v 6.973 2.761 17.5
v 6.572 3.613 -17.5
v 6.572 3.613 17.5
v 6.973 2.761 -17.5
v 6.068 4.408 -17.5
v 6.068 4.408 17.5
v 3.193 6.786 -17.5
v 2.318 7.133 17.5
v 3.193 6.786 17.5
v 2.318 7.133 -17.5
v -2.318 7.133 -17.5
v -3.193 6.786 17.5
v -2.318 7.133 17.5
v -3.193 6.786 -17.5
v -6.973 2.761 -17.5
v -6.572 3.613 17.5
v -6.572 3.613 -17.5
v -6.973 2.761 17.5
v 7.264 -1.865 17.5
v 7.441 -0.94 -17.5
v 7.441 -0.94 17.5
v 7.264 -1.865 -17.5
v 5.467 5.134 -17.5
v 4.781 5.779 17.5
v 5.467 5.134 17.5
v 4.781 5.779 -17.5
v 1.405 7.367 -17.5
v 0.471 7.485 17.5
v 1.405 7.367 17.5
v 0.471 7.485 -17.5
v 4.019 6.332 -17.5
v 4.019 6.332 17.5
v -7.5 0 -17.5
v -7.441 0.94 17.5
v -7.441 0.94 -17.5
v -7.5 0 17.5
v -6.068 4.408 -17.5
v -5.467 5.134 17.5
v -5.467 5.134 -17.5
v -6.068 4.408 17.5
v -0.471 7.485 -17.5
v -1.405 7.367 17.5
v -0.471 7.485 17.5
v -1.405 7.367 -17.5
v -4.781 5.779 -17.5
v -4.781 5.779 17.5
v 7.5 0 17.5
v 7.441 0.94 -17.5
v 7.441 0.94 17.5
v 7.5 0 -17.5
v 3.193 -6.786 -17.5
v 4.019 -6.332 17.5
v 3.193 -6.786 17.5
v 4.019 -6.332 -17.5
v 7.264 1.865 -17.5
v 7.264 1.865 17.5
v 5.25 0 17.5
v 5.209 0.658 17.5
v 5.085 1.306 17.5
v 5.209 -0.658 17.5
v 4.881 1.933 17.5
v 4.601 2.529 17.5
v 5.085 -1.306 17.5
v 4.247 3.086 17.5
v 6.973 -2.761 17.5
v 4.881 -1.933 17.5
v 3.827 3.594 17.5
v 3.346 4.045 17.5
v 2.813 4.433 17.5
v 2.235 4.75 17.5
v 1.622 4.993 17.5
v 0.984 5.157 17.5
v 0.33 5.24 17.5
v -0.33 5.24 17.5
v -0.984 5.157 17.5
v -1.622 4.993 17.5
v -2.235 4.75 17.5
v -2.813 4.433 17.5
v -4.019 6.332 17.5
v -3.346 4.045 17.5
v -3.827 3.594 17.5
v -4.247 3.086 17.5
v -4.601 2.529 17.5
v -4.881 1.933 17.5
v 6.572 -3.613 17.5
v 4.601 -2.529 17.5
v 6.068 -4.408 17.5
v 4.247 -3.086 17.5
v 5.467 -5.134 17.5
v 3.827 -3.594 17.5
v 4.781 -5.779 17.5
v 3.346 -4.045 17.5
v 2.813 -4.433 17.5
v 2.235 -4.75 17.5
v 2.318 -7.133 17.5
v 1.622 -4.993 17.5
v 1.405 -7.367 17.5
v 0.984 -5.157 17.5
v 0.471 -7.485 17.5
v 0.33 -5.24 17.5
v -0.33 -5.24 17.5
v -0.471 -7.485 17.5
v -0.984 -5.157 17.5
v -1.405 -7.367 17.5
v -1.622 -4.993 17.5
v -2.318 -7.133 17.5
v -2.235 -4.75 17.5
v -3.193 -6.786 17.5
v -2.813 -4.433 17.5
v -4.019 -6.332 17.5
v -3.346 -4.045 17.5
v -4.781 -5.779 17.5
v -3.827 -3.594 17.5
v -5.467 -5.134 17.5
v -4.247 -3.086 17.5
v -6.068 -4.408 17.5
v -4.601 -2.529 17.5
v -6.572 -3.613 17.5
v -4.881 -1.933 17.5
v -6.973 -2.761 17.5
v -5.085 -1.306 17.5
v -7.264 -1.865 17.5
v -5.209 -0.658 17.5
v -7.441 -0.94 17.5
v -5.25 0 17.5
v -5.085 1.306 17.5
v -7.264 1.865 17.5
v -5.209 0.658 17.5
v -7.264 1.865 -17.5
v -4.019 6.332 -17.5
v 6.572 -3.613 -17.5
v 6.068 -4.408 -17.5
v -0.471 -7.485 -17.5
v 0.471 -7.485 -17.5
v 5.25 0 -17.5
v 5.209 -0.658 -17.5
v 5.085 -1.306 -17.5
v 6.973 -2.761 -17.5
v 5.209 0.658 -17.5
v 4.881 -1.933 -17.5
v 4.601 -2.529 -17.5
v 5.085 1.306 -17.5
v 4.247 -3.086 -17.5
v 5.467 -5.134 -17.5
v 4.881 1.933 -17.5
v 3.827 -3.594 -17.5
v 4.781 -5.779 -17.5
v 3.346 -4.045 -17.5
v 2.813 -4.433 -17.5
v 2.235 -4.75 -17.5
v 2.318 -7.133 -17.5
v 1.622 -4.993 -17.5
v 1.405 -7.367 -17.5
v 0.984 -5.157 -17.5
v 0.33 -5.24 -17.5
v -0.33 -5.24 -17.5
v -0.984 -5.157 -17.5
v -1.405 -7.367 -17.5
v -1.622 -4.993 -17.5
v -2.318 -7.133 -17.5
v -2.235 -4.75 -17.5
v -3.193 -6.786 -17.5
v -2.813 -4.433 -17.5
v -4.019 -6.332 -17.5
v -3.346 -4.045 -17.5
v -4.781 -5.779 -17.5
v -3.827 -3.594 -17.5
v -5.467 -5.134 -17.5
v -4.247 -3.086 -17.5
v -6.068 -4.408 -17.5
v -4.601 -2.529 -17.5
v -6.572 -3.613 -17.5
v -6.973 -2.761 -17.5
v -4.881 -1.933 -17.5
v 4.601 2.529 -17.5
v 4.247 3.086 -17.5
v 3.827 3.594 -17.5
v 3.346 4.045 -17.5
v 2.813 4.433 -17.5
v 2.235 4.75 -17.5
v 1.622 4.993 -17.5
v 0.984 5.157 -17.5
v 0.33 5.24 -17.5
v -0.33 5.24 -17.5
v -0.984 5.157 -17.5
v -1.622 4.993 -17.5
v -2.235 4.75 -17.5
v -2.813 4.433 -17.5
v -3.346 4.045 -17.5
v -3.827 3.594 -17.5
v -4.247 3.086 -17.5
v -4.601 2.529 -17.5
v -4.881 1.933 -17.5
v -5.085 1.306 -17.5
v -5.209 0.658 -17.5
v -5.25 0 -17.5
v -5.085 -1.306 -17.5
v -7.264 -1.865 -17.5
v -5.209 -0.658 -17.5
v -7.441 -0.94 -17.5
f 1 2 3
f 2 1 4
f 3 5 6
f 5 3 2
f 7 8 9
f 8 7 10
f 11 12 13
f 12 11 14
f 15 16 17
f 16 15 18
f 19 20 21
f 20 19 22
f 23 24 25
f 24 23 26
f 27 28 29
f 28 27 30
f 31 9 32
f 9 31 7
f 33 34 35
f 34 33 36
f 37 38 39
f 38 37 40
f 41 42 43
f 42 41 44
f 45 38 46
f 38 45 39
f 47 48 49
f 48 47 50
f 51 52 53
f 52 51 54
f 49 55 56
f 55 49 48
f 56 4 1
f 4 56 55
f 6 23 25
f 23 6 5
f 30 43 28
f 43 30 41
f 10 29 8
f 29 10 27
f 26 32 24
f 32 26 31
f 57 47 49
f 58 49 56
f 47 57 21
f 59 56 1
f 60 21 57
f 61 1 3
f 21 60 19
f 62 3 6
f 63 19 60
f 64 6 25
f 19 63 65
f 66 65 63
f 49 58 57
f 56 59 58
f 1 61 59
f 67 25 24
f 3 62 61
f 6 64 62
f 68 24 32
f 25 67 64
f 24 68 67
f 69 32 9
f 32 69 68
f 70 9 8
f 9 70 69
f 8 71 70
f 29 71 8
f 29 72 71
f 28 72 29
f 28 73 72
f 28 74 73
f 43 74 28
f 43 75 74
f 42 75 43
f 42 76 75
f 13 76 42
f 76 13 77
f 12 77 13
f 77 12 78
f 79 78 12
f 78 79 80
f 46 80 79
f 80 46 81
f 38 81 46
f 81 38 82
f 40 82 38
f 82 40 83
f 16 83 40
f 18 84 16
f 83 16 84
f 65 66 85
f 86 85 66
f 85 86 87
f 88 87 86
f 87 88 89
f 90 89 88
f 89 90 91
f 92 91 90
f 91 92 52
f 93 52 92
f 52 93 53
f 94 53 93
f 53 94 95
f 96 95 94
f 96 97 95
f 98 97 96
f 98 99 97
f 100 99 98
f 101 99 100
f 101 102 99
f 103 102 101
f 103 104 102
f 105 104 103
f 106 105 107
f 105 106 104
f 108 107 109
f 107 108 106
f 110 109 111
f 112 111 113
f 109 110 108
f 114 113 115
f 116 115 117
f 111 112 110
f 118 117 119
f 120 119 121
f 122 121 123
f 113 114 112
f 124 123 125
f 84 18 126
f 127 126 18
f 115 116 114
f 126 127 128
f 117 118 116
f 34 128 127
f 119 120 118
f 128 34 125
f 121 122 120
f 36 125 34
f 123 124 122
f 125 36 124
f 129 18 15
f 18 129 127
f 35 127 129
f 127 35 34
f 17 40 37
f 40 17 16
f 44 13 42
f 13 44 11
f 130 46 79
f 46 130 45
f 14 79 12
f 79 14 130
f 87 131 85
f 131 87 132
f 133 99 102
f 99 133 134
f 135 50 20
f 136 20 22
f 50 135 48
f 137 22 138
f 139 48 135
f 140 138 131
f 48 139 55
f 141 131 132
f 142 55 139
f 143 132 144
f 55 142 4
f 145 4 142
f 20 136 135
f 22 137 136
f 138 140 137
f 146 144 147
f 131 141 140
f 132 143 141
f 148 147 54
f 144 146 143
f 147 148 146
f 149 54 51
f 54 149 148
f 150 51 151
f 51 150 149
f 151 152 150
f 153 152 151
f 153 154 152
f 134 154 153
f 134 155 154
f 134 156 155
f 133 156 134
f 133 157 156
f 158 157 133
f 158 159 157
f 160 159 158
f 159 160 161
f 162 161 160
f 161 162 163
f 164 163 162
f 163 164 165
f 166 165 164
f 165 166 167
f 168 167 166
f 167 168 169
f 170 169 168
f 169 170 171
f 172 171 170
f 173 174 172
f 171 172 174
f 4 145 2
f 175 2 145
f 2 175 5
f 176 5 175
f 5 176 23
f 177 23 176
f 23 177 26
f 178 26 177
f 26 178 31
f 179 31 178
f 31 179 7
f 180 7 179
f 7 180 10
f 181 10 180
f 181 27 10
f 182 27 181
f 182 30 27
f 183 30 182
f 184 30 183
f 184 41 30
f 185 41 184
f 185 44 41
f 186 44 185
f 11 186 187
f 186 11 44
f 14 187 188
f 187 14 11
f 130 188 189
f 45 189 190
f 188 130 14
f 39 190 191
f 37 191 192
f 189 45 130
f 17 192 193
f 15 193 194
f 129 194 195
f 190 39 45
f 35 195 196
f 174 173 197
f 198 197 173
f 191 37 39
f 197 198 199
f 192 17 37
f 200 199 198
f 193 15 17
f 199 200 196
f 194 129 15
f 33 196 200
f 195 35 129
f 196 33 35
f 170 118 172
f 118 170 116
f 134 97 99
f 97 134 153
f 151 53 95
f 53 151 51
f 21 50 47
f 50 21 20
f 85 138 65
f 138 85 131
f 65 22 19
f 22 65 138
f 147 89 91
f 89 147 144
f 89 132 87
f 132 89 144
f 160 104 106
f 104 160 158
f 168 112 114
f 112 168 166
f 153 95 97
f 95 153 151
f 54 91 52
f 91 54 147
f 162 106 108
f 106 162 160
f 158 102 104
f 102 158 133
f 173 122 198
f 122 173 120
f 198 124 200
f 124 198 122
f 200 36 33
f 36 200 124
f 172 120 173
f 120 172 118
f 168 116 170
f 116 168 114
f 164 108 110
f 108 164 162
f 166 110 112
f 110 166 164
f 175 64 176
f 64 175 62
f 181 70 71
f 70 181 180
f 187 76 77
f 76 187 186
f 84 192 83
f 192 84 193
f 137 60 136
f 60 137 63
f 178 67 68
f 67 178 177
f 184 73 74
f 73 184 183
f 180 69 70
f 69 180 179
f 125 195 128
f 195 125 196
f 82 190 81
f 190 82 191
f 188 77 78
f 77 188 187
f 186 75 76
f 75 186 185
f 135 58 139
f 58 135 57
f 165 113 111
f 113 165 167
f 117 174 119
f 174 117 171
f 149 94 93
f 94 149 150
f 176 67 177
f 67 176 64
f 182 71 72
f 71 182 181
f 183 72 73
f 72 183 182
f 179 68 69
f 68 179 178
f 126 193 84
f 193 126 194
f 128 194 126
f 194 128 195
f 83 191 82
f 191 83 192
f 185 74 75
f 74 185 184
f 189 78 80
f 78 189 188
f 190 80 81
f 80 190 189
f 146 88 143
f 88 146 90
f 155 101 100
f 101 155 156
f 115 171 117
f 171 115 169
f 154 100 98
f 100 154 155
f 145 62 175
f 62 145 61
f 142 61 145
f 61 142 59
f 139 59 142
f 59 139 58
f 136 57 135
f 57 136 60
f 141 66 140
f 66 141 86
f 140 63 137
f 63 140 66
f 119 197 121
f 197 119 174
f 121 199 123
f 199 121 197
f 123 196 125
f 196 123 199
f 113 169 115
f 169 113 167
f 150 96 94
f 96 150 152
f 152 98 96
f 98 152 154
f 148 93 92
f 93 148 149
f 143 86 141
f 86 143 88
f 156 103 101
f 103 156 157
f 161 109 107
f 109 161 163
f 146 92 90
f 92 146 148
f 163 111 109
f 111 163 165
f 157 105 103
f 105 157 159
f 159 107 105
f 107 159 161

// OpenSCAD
$fn = 50;


difference() {
	union() {
		translate(v = [0, 0, -17.5000000000]) {
			cylinder(h = 35, r = 7.5000000000);
		}
	}
	union() {
		translate(v = [0, 0, -100.0000000000]) {
			cylinder(h = 200, r = 5.2500000000);
		}
	}
}
